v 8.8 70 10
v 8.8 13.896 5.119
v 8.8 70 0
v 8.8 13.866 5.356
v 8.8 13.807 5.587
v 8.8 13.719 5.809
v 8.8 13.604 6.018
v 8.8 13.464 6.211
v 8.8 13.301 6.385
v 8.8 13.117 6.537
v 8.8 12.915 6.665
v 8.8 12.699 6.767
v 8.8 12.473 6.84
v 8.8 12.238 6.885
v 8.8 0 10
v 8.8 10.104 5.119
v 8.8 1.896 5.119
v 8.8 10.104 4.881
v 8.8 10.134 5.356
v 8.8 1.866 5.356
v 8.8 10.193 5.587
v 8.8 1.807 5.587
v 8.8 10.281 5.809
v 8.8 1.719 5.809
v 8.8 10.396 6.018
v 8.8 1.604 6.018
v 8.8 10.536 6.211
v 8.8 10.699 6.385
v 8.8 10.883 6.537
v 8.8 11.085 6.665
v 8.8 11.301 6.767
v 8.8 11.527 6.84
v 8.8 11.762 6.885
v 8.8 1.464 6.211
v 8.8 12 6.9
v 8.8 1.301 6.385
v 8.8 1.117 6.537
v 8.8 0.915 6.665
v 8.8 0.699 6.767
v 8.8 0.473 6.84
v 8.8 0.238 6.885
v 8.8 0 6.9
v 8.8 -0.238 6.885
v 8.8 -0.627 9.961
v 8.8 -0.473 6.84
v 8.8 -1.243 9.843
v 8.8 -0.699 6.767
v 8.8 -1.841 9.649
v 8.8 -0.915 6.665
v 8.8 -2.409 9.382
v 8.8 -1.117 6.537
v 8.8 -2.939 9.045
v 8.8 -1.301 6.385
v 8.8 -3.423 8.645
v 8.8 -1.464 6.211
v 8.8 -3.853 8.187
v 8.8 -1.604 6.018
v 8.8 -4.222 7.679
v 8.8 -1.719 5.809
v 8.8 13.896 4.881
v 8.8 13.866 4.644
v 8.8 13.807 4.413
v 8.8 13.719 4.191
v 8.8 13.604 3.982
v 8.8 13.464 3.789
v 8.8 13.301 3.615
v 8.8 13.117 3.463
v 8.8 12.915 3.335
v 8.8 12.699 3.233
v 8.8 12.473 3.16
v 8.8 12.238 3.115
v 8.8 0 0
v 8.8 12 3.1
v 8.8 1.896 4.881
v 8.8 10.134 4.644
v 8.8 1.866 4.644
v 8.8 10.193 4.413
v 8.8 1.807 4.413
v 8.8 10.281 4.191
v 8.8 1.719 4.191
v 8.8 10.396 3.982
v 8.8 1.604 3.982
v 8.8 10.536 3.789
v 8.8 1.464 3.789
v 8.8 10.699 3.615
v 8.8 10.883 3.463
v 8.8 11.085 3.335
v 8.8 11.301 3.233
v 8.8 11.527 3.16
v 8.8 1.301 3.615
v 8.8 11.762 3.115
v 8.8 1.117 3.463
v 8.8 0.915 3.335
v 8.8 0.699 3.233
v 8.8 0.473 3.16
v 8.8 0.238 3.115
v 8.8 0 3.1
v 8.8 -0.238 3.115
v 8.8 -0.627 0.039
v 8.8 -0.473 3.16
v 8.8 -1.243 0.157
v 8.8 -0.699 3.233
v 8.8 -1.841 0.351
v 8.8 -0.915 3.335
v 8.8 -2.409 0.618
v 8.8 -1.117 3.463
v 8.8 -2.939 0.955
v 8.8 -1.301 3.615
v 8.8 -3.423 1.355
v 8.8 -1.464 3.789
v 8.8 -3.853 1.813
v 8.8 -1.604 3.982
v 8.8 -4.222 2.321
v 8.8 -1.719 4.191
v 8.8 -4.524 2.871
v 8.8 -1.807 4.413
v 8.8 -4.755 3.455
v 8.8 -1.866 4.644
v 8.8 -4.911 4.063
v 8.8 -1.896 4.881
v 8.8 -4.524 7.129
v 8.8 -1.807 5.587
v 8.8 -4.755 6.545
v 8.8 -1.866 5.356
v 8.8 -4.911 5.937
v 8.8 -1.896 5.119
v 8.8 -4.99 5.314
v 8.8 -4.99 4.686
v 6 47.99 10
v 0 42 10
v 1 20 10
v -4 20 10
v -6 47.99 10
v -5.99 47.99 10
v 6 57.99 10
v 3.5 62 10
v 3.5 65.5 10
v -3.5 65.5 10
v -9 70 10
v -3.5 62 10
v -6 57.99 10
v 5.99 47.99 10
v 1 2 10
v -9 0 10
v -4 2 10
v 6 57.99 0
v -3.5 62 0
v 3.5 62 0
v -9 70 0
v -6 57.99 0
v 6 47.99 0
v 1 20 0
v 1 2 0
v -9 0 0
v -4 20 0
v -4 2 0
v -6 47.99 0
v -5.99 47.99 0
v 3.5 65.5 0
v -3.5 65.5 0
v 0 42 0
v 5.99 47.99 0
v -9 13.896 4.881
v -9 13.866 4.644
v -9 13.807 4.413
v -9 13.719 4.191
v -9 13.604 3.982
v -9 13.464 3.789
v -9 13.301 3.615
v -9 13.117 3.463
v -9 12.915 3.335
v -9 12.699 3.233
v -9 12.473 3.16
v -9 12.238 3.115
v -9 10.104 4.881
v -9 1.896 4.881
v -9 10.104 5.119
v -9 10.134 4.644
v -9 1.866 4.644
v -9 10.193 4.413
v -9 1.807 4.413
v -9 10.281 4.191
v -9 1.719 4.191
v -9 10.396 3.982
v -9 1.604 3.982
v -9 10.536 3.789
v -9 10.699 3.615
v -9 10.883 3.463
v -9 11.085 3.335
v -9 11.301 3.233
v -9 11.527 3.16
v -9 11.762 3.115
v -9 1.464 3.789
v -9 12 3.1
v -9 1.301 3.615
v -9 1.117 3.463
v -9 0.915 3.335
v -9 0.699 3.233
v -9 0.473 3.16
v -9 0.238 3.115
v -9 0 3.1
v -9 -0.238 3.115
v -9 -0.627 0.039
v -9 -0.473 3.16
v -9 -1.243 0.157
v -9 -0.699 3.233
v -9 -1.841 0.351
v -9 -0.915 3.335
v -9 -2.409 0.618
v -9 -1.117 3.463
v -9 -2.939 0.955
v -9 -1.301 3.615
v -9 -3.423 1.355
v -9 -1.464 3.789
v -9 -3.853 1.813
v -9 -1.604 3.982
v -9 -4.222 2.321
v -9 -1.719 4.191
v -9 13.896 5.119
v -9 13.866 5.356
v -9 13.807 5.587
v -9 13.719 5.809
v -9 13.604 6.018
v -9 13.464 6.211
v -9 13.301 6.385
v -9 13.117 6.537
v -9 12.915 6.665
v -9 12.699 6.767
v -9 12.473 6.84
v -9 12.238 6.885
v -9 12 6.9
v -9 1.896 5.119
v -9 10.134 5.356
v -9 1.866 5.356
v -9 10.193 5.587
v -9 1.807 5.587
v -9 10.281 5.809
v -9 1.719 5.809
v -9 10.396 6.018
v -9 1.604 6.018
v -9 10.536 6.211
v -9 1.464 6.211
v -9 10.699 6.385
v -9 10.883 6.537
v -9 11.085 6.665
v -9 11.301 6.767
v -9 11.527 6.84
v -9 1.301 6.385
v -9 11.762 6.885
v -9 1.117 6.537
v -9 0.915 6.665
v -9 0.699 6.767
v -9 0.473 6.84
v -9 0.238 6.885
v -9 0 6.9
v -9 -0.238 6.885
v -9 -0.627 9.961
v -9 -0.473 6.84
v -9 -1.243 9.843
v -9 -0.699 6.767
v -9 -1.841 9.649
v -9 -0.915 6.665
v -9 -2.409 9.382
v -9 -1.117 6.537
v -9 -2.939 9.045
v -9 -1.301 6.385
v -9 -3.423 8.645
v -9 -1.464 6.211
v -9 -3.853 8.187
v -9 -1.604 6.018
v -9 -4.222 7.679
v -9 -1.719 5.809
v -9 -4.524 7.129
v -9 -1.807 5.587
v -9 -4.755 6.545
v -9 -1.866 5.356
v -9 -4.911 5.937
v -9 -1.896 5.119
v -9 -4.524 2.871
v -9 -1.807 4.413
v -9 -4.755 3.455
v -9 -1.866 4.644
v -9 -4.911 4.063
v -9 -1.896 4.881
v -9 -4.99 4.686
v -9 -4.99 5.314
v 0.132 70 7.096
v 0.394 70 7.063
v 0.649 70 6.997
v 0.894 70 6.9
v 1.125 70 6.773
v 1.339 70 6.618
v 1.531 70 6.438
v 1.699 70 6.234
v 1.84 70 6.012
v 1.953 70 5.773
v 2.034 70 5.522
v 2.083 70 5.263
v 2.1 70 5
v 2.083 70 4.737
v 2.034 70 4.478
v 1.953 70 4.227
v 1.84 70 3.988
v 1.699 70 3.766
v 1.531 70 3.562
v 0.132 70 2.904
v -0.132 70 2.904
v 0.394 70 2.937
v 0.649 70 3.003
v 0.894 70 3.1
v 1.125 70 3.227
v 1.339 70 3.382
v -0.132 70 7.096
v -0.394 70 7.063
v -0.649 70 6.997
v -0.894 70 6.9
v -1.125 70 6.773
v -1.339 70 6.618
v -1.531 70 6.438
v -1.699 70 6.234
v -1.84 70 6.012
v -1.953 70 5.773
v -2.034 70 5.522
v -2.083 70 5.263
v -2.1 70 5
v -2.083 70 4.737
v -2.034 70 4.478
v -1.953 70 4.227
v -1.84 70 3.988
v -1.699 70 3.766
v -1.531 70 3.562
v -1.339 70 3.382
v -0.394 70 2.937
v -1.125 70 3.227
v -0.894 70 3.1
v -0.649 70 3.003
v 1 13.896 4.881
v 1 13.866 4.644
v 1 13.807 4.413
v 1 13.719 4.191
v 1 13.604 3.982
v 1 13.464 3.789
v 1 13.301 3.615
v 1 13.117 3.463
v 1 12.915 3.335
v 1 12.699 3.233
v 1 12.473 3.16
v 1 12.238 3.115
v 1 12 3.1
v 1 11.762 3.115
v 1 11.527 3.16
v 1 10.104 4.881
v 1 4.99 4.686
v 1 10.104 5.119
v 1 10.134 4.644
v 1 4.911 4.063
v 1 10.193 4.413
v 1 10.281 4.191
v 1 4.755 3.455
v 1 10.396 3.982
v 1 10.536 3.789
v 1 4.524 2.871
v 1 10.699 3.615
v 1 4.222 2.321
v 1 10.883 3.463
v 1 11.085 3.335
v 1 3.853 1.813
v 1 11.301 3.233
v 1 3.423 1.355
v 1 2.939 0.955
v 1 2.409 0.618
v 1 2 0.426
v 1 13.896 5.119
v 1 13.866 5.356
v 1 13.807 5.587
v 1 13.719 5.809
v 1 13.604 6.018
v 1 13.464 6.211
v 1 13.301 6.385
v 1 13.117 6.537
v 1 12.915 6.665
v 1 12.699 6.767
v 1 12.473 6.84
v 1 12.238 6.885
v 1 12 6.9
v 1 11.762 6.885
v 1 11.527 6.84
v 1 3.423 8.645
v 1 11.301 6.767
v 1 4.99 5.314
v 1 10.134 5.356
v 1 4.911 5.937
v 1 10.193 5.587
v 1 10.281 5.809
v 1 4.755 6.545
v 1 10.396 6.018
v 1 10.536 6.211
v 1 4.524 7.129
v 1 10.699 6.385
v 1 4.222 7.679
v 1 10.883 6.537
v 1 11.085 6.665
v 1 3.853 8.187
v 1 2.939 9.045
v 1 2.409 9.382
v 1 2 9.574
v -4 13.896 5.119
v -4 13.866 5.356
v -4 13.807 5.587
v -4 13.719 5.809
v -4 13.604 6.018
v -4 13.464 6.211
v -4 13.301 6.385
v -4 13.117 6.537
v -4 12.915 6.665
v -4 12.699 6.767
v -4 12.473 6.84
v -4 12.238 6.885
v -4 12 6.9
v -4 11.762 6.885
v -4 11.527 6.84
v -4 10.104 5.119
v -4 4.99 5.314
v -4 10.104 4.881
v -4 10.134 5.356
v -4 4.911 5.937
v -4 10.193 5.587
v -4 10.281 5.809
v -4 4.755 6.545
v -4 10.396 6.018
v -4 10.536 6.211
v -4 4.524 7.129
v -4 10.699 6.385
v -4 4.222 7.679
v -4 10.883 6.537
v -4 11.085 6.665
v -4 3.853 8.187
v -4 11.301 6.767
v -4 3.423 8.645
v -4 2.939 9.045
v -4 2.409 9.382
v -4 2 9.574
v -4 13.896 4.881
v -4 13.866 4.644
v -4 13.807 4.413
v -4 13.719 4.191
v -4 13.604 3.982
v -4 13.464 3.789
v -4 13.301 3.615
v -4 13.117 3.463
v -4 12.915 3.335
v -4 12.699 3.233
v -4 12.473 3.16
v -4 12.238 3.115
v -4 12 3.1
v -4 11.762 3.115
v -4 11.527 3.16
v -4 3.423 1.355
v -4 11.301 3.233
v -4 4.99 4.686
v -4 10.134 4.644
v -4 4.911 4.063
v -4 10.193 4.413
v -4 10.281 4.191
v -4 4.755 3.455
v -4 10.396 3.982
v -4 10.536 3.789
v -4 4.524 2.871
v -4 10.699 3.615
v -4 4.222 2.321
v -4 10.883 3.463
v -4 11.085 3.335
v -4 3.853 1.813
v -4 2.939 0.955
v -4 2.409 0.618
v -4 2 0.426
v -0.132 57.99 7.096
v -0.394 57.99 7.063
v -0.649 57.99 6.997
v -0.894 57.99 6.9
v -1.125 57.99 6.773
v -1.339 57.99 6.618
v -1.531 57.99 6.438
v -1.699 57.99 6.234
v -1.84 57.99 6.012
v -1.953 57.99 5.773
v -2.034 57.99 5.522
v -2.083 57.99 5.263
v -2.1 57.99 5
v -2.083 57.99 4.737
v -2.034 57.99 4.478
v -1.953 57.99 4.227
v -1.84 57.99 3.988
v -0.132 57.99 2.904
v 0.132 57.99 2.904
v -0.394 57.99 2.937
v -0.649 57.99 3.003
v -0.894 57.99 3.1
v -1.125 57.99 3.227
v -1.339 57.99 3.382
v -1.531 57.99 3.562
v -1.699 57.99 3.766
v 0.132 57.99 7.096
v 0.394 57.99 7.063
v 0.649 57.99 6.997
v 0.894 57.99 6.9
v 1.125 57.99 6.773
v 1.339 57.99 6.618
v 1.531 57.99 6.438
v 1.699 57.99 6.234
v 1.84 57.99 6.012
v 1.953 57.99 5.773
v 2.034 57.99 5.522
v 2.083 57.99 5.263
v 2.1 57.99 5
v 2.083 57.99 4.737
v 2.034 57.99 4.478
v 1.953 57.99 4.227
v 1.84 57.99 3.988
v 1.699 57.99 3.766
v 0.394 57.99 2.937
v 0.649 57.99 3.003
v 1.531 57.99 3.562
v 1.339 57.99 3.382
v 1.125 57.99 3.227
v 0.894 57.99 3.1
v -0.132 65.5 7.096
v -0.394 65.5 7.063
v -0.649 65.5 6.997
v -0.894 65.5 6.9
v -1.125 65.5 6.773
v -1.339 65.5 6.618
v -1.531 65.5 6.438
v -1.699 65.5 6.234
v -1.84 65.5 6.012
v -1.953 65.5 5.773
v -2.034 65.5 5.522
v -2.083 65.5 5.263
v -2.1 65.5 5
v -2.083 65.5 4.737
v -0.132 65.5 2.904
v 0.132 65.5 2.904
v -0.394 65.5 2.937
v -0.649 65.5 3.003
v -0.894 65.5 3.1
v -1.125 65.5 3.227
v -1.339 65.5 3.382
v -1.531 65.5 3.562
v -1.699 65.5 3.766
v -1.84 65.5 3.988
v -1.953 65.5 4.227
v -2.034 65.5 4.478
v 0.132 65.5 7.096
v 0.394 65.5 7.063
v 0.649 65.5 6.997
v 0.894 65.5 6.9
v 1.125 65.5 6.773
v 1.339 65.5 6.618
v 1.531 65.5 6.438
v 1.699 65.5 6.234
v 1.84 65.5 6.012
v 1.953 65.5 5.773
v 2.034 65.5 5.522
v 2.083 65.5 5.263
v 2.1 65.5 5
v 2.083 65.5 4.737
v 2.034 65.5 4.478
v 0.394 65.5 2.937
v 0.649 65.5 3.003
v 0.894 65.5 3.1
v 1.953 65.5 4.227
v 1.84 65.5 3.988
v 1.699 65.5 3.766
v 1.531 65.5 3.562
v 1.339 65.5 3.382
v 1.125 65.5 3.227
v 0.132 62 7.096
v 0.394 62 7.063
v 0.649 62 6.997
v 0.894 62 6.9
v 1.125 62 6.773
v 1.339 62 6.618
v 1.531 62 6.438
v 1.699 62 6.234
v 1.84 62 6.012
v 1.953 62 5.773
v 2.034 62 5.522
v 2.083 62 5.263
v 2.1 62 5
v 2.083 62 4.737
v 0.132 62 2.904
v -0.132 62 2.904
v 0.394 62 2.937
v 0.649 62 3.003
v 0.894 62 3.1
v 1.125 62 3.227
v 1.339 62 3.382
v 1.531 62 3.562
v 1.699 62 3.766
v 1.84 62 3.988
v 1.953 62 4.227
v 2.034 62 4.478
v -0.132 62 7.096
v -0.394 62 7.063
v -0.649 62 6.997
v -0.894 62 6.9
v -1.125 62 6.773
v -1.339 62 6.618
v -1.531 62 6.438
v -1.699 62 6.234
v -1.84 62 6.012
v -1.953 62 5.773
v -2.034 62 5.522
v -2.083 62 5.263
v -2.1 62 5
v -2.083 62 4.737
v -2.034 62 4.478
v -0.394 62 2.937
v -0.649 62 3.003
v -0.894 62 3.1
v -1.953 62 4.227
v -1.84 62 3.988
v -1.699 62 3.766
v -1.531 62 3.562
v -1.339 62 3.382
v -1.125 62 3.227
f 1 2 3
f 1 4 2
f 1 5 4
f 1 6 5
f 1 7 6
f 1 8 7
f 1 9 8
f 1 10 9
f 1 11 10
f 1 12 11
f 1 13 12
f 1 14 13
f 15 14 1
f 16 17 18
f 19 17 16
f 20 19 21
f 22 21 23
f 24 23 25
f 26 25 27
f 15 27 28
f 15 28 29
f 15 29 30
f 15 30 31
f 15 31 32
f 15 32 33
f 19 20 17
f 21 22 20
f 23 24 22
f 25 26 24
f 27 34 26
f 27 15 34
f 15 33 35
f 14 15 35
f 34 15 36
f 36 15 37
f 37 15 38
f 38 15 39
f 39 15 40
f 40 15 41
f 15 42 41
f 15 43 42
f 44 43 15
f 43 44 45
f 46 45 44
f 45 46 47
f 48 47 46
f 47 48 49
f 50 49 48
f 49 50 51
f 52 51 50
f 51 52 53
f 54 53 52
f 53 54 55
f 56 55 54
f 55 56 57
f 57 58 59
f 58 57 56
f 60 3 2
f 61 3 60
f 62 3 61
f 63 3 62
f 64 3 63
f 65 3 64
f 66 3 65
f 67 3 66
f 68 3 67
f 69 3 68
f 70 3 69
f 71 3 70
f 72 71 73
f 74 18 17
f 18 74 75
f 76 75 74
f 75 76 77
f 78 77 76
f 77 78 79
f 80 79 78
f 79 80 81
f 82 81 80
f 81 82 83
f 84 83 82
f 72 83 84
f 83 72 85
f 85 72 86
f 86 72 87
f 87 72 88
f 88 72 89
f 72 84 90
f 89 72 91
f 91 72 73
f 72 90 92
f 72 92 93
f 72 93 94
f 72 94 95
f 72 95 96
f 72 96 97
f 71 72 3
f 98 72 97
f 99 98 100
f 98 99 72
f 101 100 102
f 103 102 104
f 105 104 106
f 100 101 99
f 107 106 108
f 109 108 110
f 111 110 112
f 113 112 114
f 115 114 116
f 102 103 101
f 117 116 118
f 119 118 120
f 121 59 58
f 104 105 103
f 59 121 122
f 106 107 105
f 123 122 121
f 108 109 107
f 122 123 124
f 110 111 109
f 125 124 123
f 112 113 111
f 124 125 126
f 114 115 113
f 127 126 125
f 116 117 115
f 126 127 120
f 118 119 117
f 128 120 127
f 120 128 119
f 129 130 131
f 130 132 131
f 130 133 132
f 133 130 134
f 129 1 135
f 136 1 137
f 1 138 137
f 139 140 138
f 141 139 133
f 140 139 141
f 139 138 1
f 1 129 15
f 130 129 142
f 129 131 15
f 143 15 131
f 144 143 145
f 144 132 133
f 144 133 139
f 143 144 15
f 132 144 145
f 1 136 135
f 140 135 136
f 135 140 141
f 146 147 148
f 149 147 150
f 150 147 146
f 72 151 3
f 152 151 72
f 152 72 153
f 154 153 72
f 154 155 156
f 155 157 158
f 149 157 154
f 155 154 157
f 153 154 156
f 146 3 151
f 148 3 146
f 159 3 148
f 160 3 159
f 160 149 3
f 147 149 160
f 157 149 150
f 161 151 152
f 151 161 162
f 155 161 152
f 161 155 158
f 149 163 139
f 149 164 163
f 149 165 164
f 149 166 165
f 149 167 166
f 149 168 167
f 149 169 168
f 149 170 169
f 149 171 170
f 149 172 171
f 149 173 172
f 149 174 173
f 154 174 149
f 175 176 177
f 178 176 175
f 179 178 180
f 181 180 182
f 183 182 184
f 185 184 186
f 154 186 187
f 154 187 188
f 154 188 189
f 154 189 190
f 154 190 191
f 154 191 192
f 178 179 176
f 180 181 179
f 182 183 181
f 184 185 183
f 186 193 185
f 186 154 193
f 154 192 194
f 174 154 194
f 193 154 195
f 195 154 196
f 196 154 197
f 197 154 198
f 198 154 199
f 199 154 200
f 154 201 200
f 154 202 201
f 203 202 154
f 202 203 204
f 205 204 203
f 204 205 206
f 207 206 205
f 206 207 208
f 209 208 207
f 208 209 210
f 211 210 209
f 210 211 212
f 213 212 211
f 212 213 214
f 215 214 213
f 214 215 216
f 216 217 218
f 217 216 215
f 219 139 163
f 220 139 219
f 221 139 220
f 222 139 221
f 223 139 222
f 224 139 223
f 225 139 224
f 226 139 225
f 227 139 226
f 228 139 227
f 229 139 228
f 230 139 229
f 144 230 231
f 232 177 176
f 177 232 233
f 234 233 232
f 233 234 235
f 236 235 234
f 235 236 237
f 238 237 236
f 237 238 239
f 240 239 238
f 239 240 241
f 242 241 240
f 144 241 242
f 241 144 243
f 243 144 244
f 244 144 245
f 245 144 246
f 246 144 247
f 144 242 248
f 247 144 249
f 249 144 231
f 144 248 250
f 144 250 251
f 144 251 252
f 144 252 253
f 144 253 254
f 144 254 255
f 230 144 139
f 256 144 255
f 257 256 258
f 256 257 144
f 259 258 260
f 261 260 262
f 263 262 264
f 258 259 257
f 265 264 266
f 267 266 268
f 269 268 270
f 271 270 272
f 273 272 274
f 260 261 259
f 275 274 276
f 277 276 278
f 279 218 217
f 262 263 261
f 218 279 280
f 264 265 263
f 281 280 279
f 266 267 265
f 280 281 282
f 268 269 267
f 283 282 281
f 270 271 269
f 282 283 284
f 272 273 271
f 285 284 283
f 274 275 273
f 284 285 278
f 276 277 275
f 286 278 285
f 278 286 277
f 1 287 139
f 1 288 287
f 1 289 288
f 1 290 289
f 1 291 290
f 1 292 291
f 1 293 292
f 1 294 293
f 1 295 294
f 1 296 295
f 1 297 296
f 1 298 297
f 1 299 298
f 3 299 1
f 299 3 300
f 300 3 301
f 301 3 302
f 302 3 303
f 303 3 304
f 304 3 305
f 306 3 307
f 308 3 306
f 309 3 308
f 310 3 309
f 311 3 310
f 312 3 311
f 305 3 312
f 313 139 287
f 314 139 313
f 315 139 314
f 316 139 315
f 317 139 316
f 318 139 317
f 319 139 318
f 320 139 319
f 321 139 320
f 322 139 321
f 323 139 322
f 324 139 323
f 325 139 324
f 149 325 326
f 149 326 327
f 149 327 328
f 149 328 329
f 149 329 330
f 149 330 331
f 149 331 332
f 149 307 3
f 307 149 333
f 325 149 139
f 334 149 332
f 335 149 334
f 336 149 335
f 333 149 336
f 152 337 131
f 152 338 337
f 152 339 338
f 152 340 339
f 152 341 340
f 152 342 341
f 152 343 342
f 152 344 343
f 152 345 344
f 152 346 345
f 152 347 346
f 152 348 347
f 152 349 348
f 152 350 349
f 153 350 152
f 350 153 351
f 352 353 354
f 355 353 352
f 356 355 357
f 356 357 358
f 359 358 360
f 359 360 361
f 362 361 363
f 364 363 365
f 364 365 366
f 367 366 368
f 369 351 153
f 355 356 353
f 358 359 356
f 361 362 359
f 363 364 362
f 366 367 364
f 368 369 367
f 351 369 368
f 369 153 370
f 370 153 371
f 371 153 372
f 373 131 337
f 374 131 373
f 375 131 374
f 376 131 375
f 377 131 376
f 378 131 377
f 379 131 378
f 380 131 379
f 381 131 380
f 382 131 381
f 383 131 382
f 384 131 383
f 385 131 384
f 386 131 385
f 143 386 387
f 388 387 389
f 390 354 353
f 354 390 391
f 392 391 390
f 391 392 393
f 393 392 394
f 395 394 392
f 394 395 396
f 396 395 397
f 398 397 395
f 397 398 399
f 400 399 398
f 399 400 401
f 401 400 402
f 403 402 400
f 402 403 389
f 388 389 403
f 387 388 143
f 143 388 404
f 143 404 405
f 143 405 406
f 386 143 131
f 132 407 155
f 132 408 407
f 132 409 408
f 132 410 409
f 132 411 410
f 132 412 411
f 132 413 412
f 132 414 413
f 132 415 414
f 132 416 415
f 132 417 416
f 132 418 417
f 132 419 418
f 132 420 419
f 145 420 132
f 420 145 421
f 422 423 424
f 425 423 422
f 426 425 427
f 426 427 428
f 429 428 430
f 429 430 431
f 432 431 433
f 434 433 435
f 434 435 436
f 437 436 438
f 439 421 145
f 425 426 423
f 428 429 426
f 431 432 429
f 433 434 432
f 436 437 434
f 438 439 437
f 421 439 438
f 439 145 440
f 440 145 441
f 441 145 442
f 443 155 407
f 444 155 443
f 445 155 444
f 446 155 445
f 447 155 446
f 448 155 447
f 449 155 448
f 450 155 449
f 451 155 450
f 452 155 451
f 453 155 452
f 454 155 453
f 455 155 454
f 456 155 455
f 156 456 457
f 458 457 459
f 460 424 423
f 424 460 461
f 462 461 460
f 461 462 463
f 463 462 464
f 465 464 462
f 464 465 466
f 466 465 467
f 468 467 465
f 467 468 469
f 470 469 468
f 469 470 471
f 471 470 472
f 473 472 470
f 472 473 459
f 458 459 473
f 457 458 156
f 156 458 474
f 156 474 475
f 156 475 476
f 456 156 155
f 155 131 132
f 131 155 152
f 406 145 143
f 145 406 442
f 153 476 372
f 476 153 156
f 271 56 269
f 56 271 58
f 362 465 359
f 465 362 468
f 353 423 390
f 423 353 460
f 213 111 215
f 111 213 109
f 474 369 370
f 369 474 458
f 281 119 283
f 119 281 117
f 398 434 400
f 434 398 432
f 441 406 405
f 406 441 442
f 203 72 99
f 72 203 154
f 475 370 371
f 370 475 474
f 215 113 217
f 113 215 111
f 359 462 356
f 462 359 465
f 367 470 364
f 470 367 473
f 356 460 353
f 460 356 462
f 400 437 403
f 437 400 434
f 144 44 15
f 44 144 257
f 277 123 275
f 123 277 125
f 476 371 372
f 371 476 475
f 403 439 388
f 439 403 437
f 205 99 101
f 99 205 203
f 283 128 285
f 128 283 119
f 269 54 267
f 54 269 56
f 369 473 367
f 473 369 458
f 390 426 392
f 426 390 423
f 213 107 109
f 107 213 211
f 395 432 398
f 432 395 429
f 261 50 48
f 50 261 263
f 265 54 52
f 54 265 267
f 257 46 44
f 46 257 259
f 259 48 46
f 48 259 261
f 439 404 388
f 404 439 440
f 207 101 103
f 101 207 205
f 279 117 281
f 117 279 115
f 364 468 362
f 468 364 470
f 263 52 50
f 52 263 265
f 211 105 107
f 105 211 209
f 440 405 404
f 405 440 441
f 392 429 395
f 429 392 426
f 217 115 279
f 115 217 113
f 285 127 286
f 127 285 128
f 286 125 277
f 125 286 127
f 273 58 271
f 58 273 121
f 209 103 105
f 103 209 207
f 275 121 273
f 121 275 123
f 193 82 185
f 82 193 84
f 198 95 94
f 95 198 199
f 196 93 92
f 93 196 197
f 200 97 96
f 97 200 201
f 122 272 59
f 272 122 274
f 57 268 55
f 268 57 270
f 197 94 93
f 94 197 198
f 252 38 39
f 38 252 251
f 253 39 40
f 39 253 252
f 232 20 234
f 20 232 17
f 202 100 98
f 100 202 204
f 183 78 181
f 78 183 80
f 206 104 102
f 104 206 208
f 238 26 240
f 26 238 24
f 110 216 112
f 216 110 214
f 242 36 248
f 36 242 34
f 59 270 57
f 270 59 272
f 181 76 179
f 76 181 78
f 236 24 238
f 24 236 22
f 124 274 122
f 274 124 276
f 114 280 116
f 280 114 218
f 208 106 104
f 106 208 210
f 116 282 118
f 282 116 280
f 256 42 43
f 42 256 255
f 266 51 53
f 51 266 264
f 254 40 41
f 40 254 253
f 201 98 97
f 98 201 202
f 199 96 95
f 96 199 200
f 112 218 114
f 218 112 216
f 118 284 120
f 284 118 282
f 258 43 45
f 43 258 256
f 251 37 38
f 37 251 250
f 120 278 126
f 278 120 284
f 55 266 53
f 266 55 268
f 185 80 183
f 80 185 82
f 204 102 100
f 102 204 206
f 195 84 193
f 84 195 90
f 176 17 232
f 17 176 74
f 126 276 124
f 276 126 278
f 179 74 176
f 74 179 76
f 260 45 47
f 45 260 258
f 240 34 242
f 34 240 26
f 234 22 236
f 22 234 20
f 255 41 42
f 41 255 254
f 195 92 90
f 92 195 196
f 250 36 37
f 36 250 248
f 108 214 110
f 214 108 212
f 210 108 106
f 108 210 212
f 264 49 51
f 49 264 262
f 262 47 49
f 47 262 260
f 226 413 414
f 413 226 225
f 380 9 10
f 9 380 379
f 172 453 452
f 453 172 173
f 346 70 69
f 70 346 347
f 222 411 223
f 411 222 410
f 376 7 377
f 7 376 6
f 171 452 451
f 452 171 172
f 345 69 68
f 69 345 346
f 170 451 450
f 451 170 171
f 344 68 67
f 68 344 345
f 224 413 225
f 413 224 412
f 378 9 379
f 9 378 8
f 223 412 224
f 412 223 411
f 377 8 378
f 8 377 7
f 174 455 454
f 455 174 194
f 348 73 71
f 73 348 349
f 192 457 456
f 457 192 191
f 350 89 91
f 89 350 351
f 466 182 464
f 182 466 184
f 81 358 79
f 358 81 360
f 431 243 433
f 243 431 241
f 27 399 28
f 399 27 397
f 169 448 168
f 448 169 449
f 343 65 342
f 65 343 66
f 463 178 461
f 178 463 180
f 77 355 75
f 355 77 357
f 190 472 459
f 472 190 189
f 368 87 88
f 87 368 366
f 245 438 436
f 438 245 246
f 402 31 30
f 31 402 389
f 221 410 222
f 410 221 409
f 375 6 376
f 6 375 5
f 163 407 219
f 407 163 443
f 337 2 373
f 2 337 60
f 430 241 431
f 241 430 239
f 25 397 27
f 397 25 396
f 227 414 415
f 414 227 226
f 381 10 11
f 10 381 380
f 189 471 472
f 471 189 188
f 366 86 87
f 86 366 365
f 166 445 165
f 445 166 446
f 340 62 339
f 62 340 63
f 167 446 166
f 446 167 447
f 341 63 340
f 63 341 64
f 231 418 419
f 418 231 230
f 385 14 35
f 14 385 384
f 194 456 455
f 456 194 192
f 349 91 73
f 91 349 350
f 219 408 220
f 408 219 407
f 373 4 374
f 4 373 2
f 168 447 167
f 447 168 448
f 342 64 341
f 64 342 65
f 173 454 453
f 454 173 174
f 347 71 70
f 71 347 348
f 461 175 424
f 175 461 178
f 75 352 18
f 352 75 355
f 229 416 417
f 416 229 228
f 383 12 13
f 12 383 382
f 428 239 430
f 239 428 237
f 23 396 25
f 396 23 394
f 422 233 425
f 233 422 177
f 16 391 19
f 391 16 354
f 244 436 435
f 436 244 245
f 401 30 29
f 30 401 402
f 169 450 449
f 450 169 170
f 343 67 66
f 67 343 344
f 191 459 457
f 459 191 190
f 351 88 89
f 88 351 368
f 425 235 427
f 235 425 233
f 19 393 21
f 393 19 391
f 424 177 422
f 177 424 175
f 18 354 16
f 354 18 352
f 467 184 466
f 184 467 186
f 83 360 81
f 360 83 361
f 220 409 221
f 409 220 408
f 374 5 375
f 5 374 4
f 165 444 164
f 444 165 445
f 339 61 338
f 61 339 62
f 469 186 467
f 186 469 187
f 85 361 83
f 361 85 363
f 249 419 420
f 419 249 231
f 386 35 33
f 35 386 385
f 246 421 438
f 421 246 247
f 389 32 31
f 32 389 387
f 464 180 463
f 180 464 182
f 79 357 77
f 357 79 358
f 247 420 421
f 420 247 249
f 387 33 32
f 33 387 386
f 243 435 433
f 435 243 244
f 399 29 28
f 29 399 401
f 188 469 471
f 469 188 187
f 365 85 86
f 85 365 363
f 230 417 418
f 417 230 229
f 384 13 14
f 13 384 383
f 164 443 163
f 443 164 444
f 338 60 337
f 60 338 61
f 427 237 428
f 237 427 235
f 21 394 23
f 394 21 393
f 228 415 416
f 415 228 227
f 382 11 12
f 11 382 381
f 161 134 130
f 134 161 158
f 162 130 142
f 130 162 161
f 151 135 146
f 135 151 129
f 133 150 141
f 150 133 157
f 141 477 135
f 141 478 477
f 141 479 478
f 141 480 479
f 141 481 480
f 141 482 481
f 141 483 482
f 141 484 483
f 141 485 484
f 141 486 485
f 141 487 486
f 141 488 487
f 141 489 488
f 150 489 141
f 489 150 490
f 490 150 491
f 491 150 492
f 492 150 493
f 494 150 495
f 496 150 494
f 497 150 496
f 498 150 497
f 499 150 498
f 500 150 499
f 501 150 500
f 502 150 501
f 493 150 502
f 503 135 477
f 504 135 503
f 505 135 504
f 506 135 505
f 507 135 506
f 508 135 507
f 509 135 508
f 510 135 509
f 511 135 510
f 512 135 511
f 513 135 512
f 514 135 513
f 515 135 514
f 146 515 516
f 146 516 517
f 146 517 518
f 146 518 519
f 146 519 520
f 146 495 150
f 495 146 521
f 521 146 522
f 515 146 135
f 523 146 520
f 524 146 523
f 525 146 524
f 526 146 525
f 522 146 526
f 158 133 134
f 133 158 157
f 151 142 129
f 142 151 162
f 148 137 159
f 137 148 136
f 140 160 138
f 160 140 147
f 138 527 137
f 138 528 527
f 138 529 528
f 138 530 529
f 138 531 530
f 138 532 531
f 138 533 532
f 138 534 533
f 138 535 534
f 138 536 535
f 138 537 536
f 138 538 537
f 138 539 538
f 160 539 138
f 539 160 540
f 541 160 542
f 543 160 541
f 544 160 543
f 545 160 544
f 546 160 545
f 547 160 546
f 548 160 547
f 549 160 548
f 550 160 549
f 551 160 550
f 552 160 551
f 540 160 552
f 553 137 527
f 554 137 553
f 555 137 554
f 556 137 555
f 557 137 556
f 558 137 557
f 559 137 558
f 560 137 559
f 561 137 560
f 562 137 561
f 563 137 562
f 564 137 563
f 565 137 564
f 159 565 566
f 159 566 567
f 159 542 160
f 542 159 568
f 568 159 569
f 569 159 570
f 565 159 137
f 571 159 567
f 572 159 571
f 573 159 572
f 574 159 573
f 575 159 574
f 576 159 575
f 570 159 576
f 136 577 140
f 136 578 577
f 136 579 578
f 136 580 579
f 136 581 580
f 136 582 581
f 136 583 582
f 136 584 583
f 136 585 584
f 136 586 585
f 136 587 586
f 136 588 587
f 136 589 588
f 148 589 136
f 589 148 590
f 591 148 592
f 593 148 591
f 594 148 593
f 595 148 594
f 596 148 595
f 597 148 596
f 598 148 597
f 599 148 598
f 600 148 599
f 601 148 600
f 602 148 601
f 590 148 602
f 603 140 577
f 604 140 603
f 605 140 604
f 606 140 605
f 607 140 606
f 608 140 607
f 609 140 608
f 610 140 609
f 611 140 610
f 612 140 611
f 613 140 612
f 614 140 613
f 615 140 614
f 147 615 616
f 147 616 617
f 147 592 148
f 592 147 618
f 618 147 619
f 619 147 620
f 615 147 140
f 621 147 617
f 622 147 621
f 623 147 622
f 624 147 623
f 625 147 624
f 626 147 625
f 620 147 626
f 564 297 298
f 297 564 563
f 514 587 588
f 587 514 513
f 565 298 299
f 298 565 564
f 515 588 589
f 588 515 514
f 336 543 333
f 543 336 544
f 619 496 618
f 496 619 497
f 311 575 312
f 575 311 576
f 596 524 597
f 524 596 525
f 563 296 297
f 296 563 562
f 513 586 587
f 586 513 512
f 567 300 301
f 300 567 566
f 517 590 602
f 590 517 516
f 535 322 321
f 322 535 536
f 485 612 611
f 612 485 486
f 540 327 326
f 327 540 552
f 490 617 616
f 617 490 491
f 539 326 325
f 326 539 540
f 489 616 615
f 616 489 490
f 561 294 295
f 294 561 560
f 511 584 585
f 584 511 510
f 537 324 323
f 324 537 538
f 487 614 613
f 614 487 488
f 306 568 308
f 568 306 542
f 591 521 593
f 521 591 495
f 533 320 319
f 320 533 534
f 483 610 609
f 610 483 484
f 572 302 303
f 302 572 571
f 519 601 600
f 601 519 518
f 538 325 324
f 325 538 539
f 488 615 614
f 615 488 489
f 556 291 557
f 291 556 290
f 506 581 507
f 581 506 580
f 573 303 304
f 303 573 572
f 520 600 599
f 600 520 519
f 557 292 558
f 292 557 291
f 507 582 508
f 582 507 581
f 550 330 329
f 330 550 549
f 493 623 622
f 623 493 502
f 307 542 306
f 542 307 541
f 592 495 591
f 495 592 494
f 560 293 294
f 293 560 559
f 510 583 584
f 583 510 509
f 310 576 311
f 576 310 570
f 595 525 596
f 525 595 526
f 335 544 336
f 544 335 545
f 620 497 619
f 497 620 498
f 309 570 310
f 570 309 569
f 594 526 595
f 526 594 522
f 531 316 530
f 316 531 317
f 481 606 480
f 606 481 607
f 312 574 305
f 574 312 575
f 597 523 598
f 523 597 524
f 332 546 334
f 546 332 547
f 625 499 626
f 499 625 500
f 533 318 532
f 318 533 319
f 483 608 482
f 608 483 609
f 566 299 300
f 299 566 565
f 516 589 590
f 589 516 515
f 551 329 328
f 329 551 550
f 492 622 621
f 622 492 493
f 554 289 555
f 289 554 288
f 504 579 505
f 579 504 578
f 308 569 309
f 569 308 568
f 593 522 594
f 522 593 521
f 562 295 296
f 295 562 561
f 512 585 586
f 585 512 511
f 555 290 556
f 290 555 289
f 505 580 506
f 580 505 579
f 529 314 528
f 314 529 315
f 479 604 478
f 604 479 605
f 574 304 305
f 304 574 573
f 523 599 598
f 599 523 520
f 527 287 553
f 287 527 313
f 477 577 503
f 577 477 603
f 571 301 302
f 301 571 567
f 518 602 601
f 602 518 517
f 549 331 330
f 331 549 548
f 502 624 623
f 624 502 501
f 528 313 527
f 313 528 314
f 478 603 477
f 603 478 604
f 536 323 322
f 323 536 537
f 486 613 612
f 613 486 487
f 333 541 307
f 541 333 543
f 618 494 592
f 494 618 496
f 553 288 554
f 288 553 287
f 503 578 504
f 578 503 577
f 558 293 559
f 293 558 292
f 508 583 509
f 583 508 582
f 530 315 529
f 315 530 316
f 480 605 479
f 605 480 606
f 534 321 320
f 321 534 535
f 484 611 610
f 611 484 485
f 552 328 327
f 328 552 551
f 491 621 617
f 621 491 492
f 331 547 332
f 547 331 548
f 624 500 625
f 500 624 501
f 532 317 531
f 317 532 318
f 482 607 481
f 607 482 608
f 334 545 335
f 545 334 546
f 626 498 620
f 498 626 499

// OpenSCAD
$fn=50;
laenge=70;
breite=17.8;

difference(){
  union(){
    translate([-9,0,5]){
      rotate([0,90,0]){
        cylinder(r=5,h=breite);
      }
    }
    difference(){
      translate([-9,0,0]){
        cube([breite,laenge,10]);
      }
      translate([-4,2,-1]){
        cube([5,18,12]);
      }
    }  
  }
// end of union  
// beginn difference
  
  translate([-10,0,5]){
    rotate([0,90,0]){
      cylinder(r=1.9,h=20);
    }
  }
  translate([-10,12,5]){
    rotate([0,90,0]){
      cylinder(r=1.9,h=20);
    }
  }
translate([0,laenge-28,-1]){
    rotate([0,0,0]) {
	    linear_extrude(height=13)
	    polygon(points = [[0, 0],[-6,6],[6, 6]]);
    }
}
translate([-6,laenge-22.01,-1]){
  cube([12,10,13]);
}
translate([-3.5,laenge-8,-1]){
  cube([7,3.5,12]);
}
  translate([0,laenge+0.01,5]){
    rotate([90,0,0]){
      cylinder(r=2.1,h=20);
    }
  }
 // translate([-10,laenge-35,5]){
 //   rotate([0,90,0]){
 //     cylinder(r=3,h=20);
 //   }
 // }
//translate([-11,25,1]){
// cube([22,5,12]);
//}

}

// end difference
